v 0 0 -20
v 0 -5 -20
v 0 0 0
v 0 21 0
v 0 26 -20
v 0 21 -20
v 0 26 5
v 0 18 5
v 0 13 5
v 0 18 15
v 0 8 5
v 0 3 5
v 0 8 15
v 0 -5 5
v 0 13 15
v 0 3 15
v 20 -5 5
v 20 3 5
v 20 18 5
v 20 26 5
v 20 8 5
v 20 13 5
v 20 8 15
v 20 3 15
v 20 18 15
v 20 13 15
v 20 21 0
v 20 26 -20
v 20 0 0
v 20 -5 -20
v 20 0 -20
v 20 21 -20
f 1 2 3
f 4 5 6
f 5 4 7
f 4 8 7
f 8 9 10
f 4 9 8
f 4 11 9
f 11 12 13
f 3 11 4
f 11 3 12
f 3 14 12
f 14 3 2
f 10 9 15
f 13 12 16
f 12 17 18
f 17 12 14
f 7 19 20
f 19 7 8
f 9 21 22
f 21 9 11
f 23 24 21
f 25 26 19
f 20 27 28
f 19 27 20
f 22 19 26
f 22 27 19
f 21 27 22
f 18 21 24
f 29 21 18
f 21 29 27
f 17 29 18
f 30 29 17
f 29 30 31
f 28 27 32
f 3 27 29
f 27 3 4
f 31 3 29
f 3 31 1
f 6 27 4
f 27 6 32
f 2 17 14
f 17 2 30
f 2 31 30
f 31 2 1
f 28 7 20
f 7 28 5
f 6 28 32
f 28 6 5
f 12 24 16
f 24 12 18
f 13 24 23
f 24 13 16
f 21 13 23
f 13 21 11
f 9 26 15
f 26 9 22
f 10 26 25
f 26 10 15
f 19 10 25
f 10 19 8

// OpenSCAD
// file: hex_grid/hex_grid.scad
*hex_grid();

module hex_grid(size = [ 50, 30 ], wall = 1.5, hole_radius = 1.5) {
  hole_outer_radius = hole_radius;
  hole_inner_radius = hole_outer_radius * sqrt(3) / 2;

  hex_inner_radius = hole_inner_radius + wall / 2;
  hex_outer_radius = 2 * hex_inner_radius / sqrt(3);


  distance_between_hexes_centers = 2 * hex_inner_radius;
  x_distance = distance_between_hexes_centers * cos(30);
  y_distance = distance_between_hexes_centers * sin(30);

  x_hexes_count = ceil(size.x / (2 * x_distance));
  y_hexex_count = ceil(size.y / (4 * y_distance));

  module hex() {
    difference() {
      circle(hex_outer_radius, $fn = 6);
      circle(hole_outer_radius, $fn = 6);
    }
  }

  module column() {
    for (i = [0:y_hexex_count]) {
      translate([ 0, distance_between_hexes_centers * i ]) hex();
    }
  }

  module grid_quarter() {
    for (x = [0:x_hexes_count]) {
      translate([ x_distance * x, x % 2 == 0 ? 0 : -y_distance ]) column();
    }
  }

  module grid() {
    grid_quarter();
    mirror([ 0, 1, 0 ]) { grid_quarter(); }

    mirror([ 1, 0, 0 ]) {
      grid_quarter();
      mirror([ 0, 1, 0 ]) { grid_quarter(); }
    }
  }

  intersection() {
    grid();
    square(size, center = true);
  }
}
// main file
use <hex_grid/hex_grid.scad>;

$fn=400;
plate_thickness=5;
gate_base_plate_height=plate_thickness;
gate_base_plate_size_x=21;
gate_base_plate_size_y=20;
gate_base_plate=[gate_base_plate_size_y,gate_base_plate_size_x,gate_base_plate_height];

gate_side_plate_height=plate_thickness;
gate_side_plate_size_x=20+plate_thickness;
gate_side_plate_size_y=20;
gate_side_plate=[gate_side_plate_size_y,gate_side_plate_size_x,gate_side_plate_height];

gate_holder_plate_height=plate_thickness;
gate_holder_plate_size_x=gate_base_plate_size_y;
gate_holder_plate_size_y=10;
gate_holder_plate=[gate_holder_plate_size_y,gate_holder_plate_size_x,gate_holder_plate_height];
gate_holder_space=5;

union() {
    
    cube(gate_base_plate);
    
    rotate([90,0,0])
    translate([0, -gate_side_plate_size_y, 0])
    color("red")
    cube(gate_side_plate);

    rotate([90,0,0])
    translate([0, -gate_side_plate_size_y, - (gate_base_plate_size_x + plate_thickness)])
    color("green")
    cube(gate_side_plate);
    
    color("black")
    rotate([90,90,0])
    translate([- (gate_holder_plate_size_y + plate_thickness), 0, -(gate_base_plate_size_x/2 - plate_thickness/2)])
    cube(gate_holder_plate);
    
    color("grey")
    rotate([90,90,0])
    translate([-gate_holder_plate_size_x+5, 0, -(gate_base_plate_size_x/2 + plate_thickness + plate_thickness/2)])
    cube(gate_holder_plate);
}
